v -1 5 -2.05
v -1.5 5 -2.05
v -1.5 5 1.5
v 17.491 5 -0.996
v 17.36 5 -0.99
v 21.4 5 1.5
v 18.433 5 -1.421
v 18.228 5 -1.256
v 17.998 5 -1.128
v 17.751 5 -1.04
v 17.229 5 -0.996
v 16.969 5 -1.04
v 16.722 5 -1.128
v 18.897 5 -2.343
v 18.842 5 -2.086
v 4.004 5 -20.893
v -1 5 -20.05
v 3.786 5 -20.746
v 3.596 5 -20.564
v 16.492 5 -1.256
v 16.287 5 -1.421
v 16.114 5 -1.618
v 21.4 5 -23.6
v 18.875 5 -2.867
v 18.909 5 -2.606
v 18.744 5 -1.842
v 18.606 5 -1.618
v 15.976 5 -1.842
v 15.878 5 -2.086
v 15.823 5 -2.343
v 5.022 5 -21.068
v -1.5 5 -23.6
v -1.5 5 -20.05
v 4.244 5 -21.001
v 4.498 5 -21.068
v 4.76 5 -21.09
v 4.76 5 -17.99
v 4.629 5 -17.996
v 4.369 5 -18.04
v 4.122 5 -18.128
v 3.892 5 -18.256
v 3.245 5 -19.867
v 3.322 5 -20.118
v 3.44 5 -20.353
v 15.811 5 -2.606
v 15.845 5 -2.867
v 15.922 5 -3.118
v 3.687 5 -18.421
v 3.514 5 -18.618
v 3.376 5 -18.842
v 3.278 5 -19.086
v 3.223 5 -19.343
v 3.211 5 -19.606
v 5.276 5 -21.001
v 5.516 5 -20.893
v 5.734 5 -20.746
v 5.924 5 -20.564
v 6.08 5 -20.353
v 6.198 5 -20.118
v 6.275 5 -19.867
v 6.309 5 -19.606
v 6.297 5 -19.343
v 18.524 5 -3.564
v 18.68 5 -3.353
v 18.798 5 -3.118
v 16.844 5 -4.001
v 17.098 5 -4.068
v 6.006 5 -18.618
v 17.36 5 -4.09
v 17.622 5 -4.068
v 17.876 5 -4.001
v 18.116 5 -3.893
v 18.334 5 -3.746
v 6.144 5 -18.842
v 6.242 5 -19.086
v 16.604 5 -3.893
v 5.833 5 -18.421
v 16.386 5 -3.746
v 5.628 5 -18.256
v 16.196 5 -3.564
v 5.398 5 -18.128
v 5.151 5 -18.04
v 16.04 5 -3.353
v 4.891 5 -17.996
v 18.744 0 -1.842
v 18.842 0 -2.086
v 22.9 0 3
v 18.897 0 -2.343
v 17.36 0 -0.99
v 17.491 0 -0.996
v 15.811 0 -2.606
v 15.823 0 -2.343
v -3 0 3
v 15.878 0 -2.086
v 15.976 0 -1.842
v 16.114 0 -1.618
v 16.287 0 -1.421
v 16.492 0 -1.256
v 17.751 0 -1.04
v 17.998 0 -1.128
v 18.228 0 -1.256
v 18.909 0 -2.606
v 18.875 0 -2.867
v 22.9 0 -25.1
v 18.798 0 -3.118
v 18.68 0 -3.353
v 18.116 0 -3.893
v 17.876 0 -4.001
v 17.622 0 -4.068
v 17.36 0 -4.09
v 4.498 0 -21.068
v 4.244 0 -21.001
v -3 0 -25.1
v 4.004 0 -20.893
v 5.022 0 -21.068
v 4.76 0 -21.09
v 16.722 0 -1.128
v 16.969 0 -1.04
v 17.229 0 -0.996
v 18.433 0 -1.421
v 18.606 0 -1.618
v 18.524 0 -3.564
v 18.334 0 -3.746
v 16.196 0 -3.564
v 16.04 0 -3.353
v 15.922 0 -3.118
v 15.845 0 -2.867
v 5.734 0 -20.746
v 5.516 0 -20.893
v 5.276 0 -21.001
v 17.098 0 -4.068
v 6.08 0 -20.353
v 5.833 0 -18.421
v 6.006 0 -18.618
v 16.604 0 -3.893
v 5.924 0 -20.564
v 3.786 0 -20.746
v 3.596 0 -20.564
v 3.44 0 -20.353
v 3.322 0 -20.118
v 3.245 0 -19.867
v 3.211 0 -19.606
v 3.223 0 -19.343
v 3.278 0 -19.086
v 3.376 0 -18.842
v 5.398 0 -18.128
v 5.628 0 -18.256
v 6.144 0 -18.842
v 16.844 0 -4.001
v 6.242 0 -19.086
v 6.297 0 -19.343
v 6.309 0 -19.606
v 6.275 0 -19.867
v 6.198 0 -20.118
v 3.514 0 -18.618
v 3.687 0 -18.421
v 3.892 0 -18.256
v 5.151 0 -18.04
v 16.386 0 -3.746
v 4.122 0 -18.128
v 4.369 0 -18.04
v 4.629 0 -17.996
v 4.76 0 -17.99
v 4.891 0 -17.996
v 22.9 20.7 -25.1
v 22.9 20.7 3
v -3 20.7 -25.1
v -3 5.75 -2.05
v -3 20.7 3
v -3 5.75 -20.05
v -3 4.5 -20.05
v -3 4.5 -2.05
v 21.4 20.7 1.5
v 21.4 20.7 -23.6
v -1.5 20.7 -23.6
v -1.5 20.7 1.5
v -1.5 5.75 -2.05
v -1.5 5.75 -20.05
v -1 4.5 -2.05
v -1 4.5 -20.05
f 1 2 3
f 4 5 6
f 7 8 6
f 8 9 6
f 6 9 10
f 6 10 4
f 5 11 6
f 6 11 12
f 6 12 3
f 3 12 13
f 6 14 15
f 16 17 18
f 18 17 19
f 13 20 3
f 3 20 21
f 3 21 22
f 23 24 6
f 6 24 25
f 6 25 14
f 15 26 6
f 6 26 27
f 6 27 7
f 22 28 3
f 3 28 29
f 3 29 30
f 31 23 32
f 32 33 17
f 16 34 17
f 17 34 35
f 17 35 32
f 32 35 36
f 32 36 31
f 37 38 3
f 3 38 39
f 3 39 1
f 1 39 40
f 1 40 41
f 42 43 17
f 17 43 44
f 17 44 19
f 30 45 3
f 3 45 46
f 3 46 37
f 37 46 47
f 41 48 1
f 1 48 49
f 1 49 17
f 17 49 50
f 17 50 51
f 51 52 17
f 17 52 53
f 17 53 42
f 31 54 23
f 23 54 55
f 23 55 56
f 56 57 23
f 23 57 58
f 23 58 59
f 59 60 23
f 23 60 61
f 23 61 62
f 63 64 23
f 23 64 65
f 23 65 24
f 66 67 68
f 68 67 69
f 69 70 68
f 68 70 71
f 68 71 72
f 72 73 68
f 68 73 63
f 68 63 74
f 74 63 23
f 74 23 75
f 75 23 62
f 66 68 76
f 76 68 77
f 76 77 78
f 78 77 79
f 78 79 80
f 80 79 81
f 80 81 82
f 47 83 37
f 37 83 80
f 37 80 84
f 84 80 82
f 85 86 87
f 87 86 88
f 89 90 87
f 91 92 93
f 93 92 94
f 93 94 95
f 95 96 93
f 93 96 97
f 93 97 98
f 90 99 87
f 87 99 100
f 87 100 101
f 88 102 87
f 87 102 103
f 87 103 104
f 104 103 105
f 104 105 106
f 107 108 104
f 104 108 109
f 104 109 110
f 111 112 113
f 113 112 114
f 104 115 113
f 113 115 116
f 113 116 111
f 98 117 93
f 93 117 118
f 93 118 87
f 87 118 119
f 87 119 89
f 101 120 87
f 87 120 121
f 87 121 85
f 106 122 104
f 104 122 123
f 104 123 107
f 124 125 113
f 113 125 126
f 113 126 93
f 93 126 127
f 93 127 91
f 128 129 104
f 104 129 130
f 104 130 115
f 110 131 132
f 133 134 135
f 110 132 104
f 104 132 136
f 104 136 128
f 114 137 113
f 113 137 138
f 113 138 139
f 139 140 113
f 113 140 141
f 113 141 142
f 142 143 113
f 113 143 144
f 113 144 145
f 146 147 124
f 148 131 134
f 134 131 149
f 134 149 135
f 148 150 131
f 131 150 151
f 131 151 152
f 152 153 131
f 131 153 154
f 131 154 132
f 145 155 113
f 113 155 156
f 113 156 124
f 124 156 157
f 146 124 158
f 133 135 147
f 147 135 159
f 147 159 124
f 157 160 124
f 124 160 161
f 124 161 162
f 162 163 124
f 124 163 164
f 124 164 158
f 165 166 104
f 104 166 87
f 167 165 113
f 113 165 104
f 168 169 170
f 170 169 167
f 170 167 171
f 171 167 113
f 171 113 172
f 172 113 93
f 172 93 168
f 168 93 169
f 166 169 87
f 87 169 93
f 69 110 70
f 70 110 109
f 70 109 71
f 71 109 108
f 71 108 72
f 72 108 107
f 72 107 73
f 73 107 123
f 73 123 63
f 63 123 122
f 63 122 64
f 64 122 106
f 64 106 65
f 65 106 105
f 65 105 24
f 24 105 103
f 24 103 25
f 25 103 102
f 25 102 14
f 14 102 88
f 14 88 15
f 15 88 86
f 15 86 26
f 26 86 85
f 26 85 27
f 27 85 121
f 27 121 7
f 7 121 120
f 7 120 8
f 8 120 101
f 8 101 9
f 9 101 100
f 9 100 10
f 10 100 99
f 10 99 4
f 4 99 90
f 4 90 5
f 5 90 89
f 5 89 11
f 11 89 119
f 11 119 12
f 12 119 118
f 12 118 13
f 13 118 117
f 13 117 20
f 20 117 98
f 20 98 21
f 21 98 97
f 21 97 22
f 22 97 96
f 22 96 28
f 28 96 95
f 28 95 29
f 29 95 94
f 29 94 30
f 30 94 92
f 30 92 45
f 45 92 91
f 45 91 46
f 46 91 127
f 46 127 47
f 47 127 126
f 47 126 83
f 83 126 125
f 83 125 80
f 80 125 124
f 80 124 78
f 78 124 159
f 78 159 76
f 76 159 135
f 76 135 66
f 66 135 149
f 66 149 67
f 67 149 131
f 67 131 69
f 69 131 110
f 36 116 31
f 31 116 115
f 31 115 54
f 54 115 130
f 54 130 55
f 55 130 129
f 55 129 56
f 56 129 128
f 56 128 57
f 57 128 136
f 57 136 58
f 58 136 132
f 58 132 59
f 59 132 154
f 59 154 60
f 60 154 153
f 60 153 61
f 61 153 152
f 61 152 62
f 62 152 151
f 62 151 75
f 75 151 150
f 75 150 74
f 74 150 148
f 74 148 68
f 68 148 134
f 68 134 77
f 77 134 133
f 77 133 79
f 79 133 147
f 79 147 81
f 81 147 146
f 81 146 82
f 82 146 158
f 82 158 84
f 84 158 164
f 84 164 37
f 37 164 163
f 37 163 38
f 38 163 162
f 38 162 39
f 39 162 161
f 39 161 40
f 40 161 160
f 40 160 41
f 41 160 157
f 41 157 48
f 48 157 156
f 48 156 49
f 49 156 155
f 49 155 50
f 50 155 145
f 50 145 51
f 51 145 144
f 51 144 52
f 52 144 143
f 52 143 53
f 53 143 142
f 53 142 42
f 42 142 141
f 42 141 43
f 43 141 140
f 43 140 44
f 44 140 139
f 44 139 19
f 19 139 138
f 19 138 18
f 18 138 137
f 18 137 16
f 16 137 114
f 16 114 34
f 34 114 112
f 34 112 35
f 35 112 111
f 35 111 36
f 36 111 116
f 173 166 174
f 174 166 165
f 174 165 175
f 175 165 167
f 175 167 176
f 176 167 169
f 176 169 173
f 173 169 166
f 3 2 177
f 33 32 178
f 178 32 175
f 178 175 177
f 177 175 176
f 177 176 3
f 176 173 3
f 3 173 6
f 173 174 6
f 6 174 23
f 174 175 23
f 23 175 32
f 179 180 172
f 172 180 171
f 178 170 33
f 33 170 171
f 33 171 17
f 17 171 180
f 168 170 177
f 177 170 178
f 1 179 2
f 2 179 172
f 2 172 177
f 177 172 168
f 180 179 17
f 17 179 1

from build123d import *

# Parameters (mm, degrees)
SKETCH1_R           = 1.55
BOSS_EXTRUDE1_DEPTH = 5
SKETCH2_W           = 25.9
SKETCH2_H           = 28.1
SKETCH2_W_2         = 22.9
SKETCH2_H_2         = 25.1
BOSS_EXTRUDE2_DEPTH = 15.7
CUT_EXTRUDE1_DEPTH  = 2


with BuildPart() as part:
    # Sketch1 → Boss-Extrude1 (new body)
    with BuildSketch(Plane(origin=(0, 0, 0), x_dir=(1, 0, 0), z_dir=(0, 1, 0))):
        Polygon((0, 25.1), (-3, 25.1), (-3, -3), (22.9, -3), (22.9, 25.1), align=None)
        with Locations(Location((17.36, 2.54, 0), (0, 0, 270))):
            Circle(SKETCH1_R, mode=Mode.SUBTRACT)
        with Locations(Location((4.76, 19.54, 0), (0, 0, 270))):
            Circle(SKETCH1_R, mode=Mode.SUBTRACT)
    extrude(amount=BOSS_EXTRUDE1_DEPTH)

    # Sketch2 → Boss-Extrude2 (add)
    with BuildSketch(Plane(origin=(0, 5, 0), x_dir=(1, 0, 0), z_dir=(0, 1, 0))):
        with Locations((9.95, 11.05)):
            Rectangle(SKETCH2_W, SKETCH2_H)
        with Locations((9.95, 11.05)):
            Rectangle(SKETCH2_W_2, SKETCH2_H_2, mode=Mode.SUBTRACT)
    extrude(amount=BOSS_EXTRUDE2_DEPTH)

    # Sketch3 → Cut-Extrude1 (cut)
    with BuildSketch(Plane.ZY.offset(3)):
        Polygon((-11.05, 4.5), (-20.05, 4.5), (-20.05, 5.75), (-2.05, 5.75), (-2.05, 4.5), align=None)
    extrude(amount=-CUT_EXTRUDE1_DEPTH, mode=Mode.SUBTRACT)


solid = part.part
